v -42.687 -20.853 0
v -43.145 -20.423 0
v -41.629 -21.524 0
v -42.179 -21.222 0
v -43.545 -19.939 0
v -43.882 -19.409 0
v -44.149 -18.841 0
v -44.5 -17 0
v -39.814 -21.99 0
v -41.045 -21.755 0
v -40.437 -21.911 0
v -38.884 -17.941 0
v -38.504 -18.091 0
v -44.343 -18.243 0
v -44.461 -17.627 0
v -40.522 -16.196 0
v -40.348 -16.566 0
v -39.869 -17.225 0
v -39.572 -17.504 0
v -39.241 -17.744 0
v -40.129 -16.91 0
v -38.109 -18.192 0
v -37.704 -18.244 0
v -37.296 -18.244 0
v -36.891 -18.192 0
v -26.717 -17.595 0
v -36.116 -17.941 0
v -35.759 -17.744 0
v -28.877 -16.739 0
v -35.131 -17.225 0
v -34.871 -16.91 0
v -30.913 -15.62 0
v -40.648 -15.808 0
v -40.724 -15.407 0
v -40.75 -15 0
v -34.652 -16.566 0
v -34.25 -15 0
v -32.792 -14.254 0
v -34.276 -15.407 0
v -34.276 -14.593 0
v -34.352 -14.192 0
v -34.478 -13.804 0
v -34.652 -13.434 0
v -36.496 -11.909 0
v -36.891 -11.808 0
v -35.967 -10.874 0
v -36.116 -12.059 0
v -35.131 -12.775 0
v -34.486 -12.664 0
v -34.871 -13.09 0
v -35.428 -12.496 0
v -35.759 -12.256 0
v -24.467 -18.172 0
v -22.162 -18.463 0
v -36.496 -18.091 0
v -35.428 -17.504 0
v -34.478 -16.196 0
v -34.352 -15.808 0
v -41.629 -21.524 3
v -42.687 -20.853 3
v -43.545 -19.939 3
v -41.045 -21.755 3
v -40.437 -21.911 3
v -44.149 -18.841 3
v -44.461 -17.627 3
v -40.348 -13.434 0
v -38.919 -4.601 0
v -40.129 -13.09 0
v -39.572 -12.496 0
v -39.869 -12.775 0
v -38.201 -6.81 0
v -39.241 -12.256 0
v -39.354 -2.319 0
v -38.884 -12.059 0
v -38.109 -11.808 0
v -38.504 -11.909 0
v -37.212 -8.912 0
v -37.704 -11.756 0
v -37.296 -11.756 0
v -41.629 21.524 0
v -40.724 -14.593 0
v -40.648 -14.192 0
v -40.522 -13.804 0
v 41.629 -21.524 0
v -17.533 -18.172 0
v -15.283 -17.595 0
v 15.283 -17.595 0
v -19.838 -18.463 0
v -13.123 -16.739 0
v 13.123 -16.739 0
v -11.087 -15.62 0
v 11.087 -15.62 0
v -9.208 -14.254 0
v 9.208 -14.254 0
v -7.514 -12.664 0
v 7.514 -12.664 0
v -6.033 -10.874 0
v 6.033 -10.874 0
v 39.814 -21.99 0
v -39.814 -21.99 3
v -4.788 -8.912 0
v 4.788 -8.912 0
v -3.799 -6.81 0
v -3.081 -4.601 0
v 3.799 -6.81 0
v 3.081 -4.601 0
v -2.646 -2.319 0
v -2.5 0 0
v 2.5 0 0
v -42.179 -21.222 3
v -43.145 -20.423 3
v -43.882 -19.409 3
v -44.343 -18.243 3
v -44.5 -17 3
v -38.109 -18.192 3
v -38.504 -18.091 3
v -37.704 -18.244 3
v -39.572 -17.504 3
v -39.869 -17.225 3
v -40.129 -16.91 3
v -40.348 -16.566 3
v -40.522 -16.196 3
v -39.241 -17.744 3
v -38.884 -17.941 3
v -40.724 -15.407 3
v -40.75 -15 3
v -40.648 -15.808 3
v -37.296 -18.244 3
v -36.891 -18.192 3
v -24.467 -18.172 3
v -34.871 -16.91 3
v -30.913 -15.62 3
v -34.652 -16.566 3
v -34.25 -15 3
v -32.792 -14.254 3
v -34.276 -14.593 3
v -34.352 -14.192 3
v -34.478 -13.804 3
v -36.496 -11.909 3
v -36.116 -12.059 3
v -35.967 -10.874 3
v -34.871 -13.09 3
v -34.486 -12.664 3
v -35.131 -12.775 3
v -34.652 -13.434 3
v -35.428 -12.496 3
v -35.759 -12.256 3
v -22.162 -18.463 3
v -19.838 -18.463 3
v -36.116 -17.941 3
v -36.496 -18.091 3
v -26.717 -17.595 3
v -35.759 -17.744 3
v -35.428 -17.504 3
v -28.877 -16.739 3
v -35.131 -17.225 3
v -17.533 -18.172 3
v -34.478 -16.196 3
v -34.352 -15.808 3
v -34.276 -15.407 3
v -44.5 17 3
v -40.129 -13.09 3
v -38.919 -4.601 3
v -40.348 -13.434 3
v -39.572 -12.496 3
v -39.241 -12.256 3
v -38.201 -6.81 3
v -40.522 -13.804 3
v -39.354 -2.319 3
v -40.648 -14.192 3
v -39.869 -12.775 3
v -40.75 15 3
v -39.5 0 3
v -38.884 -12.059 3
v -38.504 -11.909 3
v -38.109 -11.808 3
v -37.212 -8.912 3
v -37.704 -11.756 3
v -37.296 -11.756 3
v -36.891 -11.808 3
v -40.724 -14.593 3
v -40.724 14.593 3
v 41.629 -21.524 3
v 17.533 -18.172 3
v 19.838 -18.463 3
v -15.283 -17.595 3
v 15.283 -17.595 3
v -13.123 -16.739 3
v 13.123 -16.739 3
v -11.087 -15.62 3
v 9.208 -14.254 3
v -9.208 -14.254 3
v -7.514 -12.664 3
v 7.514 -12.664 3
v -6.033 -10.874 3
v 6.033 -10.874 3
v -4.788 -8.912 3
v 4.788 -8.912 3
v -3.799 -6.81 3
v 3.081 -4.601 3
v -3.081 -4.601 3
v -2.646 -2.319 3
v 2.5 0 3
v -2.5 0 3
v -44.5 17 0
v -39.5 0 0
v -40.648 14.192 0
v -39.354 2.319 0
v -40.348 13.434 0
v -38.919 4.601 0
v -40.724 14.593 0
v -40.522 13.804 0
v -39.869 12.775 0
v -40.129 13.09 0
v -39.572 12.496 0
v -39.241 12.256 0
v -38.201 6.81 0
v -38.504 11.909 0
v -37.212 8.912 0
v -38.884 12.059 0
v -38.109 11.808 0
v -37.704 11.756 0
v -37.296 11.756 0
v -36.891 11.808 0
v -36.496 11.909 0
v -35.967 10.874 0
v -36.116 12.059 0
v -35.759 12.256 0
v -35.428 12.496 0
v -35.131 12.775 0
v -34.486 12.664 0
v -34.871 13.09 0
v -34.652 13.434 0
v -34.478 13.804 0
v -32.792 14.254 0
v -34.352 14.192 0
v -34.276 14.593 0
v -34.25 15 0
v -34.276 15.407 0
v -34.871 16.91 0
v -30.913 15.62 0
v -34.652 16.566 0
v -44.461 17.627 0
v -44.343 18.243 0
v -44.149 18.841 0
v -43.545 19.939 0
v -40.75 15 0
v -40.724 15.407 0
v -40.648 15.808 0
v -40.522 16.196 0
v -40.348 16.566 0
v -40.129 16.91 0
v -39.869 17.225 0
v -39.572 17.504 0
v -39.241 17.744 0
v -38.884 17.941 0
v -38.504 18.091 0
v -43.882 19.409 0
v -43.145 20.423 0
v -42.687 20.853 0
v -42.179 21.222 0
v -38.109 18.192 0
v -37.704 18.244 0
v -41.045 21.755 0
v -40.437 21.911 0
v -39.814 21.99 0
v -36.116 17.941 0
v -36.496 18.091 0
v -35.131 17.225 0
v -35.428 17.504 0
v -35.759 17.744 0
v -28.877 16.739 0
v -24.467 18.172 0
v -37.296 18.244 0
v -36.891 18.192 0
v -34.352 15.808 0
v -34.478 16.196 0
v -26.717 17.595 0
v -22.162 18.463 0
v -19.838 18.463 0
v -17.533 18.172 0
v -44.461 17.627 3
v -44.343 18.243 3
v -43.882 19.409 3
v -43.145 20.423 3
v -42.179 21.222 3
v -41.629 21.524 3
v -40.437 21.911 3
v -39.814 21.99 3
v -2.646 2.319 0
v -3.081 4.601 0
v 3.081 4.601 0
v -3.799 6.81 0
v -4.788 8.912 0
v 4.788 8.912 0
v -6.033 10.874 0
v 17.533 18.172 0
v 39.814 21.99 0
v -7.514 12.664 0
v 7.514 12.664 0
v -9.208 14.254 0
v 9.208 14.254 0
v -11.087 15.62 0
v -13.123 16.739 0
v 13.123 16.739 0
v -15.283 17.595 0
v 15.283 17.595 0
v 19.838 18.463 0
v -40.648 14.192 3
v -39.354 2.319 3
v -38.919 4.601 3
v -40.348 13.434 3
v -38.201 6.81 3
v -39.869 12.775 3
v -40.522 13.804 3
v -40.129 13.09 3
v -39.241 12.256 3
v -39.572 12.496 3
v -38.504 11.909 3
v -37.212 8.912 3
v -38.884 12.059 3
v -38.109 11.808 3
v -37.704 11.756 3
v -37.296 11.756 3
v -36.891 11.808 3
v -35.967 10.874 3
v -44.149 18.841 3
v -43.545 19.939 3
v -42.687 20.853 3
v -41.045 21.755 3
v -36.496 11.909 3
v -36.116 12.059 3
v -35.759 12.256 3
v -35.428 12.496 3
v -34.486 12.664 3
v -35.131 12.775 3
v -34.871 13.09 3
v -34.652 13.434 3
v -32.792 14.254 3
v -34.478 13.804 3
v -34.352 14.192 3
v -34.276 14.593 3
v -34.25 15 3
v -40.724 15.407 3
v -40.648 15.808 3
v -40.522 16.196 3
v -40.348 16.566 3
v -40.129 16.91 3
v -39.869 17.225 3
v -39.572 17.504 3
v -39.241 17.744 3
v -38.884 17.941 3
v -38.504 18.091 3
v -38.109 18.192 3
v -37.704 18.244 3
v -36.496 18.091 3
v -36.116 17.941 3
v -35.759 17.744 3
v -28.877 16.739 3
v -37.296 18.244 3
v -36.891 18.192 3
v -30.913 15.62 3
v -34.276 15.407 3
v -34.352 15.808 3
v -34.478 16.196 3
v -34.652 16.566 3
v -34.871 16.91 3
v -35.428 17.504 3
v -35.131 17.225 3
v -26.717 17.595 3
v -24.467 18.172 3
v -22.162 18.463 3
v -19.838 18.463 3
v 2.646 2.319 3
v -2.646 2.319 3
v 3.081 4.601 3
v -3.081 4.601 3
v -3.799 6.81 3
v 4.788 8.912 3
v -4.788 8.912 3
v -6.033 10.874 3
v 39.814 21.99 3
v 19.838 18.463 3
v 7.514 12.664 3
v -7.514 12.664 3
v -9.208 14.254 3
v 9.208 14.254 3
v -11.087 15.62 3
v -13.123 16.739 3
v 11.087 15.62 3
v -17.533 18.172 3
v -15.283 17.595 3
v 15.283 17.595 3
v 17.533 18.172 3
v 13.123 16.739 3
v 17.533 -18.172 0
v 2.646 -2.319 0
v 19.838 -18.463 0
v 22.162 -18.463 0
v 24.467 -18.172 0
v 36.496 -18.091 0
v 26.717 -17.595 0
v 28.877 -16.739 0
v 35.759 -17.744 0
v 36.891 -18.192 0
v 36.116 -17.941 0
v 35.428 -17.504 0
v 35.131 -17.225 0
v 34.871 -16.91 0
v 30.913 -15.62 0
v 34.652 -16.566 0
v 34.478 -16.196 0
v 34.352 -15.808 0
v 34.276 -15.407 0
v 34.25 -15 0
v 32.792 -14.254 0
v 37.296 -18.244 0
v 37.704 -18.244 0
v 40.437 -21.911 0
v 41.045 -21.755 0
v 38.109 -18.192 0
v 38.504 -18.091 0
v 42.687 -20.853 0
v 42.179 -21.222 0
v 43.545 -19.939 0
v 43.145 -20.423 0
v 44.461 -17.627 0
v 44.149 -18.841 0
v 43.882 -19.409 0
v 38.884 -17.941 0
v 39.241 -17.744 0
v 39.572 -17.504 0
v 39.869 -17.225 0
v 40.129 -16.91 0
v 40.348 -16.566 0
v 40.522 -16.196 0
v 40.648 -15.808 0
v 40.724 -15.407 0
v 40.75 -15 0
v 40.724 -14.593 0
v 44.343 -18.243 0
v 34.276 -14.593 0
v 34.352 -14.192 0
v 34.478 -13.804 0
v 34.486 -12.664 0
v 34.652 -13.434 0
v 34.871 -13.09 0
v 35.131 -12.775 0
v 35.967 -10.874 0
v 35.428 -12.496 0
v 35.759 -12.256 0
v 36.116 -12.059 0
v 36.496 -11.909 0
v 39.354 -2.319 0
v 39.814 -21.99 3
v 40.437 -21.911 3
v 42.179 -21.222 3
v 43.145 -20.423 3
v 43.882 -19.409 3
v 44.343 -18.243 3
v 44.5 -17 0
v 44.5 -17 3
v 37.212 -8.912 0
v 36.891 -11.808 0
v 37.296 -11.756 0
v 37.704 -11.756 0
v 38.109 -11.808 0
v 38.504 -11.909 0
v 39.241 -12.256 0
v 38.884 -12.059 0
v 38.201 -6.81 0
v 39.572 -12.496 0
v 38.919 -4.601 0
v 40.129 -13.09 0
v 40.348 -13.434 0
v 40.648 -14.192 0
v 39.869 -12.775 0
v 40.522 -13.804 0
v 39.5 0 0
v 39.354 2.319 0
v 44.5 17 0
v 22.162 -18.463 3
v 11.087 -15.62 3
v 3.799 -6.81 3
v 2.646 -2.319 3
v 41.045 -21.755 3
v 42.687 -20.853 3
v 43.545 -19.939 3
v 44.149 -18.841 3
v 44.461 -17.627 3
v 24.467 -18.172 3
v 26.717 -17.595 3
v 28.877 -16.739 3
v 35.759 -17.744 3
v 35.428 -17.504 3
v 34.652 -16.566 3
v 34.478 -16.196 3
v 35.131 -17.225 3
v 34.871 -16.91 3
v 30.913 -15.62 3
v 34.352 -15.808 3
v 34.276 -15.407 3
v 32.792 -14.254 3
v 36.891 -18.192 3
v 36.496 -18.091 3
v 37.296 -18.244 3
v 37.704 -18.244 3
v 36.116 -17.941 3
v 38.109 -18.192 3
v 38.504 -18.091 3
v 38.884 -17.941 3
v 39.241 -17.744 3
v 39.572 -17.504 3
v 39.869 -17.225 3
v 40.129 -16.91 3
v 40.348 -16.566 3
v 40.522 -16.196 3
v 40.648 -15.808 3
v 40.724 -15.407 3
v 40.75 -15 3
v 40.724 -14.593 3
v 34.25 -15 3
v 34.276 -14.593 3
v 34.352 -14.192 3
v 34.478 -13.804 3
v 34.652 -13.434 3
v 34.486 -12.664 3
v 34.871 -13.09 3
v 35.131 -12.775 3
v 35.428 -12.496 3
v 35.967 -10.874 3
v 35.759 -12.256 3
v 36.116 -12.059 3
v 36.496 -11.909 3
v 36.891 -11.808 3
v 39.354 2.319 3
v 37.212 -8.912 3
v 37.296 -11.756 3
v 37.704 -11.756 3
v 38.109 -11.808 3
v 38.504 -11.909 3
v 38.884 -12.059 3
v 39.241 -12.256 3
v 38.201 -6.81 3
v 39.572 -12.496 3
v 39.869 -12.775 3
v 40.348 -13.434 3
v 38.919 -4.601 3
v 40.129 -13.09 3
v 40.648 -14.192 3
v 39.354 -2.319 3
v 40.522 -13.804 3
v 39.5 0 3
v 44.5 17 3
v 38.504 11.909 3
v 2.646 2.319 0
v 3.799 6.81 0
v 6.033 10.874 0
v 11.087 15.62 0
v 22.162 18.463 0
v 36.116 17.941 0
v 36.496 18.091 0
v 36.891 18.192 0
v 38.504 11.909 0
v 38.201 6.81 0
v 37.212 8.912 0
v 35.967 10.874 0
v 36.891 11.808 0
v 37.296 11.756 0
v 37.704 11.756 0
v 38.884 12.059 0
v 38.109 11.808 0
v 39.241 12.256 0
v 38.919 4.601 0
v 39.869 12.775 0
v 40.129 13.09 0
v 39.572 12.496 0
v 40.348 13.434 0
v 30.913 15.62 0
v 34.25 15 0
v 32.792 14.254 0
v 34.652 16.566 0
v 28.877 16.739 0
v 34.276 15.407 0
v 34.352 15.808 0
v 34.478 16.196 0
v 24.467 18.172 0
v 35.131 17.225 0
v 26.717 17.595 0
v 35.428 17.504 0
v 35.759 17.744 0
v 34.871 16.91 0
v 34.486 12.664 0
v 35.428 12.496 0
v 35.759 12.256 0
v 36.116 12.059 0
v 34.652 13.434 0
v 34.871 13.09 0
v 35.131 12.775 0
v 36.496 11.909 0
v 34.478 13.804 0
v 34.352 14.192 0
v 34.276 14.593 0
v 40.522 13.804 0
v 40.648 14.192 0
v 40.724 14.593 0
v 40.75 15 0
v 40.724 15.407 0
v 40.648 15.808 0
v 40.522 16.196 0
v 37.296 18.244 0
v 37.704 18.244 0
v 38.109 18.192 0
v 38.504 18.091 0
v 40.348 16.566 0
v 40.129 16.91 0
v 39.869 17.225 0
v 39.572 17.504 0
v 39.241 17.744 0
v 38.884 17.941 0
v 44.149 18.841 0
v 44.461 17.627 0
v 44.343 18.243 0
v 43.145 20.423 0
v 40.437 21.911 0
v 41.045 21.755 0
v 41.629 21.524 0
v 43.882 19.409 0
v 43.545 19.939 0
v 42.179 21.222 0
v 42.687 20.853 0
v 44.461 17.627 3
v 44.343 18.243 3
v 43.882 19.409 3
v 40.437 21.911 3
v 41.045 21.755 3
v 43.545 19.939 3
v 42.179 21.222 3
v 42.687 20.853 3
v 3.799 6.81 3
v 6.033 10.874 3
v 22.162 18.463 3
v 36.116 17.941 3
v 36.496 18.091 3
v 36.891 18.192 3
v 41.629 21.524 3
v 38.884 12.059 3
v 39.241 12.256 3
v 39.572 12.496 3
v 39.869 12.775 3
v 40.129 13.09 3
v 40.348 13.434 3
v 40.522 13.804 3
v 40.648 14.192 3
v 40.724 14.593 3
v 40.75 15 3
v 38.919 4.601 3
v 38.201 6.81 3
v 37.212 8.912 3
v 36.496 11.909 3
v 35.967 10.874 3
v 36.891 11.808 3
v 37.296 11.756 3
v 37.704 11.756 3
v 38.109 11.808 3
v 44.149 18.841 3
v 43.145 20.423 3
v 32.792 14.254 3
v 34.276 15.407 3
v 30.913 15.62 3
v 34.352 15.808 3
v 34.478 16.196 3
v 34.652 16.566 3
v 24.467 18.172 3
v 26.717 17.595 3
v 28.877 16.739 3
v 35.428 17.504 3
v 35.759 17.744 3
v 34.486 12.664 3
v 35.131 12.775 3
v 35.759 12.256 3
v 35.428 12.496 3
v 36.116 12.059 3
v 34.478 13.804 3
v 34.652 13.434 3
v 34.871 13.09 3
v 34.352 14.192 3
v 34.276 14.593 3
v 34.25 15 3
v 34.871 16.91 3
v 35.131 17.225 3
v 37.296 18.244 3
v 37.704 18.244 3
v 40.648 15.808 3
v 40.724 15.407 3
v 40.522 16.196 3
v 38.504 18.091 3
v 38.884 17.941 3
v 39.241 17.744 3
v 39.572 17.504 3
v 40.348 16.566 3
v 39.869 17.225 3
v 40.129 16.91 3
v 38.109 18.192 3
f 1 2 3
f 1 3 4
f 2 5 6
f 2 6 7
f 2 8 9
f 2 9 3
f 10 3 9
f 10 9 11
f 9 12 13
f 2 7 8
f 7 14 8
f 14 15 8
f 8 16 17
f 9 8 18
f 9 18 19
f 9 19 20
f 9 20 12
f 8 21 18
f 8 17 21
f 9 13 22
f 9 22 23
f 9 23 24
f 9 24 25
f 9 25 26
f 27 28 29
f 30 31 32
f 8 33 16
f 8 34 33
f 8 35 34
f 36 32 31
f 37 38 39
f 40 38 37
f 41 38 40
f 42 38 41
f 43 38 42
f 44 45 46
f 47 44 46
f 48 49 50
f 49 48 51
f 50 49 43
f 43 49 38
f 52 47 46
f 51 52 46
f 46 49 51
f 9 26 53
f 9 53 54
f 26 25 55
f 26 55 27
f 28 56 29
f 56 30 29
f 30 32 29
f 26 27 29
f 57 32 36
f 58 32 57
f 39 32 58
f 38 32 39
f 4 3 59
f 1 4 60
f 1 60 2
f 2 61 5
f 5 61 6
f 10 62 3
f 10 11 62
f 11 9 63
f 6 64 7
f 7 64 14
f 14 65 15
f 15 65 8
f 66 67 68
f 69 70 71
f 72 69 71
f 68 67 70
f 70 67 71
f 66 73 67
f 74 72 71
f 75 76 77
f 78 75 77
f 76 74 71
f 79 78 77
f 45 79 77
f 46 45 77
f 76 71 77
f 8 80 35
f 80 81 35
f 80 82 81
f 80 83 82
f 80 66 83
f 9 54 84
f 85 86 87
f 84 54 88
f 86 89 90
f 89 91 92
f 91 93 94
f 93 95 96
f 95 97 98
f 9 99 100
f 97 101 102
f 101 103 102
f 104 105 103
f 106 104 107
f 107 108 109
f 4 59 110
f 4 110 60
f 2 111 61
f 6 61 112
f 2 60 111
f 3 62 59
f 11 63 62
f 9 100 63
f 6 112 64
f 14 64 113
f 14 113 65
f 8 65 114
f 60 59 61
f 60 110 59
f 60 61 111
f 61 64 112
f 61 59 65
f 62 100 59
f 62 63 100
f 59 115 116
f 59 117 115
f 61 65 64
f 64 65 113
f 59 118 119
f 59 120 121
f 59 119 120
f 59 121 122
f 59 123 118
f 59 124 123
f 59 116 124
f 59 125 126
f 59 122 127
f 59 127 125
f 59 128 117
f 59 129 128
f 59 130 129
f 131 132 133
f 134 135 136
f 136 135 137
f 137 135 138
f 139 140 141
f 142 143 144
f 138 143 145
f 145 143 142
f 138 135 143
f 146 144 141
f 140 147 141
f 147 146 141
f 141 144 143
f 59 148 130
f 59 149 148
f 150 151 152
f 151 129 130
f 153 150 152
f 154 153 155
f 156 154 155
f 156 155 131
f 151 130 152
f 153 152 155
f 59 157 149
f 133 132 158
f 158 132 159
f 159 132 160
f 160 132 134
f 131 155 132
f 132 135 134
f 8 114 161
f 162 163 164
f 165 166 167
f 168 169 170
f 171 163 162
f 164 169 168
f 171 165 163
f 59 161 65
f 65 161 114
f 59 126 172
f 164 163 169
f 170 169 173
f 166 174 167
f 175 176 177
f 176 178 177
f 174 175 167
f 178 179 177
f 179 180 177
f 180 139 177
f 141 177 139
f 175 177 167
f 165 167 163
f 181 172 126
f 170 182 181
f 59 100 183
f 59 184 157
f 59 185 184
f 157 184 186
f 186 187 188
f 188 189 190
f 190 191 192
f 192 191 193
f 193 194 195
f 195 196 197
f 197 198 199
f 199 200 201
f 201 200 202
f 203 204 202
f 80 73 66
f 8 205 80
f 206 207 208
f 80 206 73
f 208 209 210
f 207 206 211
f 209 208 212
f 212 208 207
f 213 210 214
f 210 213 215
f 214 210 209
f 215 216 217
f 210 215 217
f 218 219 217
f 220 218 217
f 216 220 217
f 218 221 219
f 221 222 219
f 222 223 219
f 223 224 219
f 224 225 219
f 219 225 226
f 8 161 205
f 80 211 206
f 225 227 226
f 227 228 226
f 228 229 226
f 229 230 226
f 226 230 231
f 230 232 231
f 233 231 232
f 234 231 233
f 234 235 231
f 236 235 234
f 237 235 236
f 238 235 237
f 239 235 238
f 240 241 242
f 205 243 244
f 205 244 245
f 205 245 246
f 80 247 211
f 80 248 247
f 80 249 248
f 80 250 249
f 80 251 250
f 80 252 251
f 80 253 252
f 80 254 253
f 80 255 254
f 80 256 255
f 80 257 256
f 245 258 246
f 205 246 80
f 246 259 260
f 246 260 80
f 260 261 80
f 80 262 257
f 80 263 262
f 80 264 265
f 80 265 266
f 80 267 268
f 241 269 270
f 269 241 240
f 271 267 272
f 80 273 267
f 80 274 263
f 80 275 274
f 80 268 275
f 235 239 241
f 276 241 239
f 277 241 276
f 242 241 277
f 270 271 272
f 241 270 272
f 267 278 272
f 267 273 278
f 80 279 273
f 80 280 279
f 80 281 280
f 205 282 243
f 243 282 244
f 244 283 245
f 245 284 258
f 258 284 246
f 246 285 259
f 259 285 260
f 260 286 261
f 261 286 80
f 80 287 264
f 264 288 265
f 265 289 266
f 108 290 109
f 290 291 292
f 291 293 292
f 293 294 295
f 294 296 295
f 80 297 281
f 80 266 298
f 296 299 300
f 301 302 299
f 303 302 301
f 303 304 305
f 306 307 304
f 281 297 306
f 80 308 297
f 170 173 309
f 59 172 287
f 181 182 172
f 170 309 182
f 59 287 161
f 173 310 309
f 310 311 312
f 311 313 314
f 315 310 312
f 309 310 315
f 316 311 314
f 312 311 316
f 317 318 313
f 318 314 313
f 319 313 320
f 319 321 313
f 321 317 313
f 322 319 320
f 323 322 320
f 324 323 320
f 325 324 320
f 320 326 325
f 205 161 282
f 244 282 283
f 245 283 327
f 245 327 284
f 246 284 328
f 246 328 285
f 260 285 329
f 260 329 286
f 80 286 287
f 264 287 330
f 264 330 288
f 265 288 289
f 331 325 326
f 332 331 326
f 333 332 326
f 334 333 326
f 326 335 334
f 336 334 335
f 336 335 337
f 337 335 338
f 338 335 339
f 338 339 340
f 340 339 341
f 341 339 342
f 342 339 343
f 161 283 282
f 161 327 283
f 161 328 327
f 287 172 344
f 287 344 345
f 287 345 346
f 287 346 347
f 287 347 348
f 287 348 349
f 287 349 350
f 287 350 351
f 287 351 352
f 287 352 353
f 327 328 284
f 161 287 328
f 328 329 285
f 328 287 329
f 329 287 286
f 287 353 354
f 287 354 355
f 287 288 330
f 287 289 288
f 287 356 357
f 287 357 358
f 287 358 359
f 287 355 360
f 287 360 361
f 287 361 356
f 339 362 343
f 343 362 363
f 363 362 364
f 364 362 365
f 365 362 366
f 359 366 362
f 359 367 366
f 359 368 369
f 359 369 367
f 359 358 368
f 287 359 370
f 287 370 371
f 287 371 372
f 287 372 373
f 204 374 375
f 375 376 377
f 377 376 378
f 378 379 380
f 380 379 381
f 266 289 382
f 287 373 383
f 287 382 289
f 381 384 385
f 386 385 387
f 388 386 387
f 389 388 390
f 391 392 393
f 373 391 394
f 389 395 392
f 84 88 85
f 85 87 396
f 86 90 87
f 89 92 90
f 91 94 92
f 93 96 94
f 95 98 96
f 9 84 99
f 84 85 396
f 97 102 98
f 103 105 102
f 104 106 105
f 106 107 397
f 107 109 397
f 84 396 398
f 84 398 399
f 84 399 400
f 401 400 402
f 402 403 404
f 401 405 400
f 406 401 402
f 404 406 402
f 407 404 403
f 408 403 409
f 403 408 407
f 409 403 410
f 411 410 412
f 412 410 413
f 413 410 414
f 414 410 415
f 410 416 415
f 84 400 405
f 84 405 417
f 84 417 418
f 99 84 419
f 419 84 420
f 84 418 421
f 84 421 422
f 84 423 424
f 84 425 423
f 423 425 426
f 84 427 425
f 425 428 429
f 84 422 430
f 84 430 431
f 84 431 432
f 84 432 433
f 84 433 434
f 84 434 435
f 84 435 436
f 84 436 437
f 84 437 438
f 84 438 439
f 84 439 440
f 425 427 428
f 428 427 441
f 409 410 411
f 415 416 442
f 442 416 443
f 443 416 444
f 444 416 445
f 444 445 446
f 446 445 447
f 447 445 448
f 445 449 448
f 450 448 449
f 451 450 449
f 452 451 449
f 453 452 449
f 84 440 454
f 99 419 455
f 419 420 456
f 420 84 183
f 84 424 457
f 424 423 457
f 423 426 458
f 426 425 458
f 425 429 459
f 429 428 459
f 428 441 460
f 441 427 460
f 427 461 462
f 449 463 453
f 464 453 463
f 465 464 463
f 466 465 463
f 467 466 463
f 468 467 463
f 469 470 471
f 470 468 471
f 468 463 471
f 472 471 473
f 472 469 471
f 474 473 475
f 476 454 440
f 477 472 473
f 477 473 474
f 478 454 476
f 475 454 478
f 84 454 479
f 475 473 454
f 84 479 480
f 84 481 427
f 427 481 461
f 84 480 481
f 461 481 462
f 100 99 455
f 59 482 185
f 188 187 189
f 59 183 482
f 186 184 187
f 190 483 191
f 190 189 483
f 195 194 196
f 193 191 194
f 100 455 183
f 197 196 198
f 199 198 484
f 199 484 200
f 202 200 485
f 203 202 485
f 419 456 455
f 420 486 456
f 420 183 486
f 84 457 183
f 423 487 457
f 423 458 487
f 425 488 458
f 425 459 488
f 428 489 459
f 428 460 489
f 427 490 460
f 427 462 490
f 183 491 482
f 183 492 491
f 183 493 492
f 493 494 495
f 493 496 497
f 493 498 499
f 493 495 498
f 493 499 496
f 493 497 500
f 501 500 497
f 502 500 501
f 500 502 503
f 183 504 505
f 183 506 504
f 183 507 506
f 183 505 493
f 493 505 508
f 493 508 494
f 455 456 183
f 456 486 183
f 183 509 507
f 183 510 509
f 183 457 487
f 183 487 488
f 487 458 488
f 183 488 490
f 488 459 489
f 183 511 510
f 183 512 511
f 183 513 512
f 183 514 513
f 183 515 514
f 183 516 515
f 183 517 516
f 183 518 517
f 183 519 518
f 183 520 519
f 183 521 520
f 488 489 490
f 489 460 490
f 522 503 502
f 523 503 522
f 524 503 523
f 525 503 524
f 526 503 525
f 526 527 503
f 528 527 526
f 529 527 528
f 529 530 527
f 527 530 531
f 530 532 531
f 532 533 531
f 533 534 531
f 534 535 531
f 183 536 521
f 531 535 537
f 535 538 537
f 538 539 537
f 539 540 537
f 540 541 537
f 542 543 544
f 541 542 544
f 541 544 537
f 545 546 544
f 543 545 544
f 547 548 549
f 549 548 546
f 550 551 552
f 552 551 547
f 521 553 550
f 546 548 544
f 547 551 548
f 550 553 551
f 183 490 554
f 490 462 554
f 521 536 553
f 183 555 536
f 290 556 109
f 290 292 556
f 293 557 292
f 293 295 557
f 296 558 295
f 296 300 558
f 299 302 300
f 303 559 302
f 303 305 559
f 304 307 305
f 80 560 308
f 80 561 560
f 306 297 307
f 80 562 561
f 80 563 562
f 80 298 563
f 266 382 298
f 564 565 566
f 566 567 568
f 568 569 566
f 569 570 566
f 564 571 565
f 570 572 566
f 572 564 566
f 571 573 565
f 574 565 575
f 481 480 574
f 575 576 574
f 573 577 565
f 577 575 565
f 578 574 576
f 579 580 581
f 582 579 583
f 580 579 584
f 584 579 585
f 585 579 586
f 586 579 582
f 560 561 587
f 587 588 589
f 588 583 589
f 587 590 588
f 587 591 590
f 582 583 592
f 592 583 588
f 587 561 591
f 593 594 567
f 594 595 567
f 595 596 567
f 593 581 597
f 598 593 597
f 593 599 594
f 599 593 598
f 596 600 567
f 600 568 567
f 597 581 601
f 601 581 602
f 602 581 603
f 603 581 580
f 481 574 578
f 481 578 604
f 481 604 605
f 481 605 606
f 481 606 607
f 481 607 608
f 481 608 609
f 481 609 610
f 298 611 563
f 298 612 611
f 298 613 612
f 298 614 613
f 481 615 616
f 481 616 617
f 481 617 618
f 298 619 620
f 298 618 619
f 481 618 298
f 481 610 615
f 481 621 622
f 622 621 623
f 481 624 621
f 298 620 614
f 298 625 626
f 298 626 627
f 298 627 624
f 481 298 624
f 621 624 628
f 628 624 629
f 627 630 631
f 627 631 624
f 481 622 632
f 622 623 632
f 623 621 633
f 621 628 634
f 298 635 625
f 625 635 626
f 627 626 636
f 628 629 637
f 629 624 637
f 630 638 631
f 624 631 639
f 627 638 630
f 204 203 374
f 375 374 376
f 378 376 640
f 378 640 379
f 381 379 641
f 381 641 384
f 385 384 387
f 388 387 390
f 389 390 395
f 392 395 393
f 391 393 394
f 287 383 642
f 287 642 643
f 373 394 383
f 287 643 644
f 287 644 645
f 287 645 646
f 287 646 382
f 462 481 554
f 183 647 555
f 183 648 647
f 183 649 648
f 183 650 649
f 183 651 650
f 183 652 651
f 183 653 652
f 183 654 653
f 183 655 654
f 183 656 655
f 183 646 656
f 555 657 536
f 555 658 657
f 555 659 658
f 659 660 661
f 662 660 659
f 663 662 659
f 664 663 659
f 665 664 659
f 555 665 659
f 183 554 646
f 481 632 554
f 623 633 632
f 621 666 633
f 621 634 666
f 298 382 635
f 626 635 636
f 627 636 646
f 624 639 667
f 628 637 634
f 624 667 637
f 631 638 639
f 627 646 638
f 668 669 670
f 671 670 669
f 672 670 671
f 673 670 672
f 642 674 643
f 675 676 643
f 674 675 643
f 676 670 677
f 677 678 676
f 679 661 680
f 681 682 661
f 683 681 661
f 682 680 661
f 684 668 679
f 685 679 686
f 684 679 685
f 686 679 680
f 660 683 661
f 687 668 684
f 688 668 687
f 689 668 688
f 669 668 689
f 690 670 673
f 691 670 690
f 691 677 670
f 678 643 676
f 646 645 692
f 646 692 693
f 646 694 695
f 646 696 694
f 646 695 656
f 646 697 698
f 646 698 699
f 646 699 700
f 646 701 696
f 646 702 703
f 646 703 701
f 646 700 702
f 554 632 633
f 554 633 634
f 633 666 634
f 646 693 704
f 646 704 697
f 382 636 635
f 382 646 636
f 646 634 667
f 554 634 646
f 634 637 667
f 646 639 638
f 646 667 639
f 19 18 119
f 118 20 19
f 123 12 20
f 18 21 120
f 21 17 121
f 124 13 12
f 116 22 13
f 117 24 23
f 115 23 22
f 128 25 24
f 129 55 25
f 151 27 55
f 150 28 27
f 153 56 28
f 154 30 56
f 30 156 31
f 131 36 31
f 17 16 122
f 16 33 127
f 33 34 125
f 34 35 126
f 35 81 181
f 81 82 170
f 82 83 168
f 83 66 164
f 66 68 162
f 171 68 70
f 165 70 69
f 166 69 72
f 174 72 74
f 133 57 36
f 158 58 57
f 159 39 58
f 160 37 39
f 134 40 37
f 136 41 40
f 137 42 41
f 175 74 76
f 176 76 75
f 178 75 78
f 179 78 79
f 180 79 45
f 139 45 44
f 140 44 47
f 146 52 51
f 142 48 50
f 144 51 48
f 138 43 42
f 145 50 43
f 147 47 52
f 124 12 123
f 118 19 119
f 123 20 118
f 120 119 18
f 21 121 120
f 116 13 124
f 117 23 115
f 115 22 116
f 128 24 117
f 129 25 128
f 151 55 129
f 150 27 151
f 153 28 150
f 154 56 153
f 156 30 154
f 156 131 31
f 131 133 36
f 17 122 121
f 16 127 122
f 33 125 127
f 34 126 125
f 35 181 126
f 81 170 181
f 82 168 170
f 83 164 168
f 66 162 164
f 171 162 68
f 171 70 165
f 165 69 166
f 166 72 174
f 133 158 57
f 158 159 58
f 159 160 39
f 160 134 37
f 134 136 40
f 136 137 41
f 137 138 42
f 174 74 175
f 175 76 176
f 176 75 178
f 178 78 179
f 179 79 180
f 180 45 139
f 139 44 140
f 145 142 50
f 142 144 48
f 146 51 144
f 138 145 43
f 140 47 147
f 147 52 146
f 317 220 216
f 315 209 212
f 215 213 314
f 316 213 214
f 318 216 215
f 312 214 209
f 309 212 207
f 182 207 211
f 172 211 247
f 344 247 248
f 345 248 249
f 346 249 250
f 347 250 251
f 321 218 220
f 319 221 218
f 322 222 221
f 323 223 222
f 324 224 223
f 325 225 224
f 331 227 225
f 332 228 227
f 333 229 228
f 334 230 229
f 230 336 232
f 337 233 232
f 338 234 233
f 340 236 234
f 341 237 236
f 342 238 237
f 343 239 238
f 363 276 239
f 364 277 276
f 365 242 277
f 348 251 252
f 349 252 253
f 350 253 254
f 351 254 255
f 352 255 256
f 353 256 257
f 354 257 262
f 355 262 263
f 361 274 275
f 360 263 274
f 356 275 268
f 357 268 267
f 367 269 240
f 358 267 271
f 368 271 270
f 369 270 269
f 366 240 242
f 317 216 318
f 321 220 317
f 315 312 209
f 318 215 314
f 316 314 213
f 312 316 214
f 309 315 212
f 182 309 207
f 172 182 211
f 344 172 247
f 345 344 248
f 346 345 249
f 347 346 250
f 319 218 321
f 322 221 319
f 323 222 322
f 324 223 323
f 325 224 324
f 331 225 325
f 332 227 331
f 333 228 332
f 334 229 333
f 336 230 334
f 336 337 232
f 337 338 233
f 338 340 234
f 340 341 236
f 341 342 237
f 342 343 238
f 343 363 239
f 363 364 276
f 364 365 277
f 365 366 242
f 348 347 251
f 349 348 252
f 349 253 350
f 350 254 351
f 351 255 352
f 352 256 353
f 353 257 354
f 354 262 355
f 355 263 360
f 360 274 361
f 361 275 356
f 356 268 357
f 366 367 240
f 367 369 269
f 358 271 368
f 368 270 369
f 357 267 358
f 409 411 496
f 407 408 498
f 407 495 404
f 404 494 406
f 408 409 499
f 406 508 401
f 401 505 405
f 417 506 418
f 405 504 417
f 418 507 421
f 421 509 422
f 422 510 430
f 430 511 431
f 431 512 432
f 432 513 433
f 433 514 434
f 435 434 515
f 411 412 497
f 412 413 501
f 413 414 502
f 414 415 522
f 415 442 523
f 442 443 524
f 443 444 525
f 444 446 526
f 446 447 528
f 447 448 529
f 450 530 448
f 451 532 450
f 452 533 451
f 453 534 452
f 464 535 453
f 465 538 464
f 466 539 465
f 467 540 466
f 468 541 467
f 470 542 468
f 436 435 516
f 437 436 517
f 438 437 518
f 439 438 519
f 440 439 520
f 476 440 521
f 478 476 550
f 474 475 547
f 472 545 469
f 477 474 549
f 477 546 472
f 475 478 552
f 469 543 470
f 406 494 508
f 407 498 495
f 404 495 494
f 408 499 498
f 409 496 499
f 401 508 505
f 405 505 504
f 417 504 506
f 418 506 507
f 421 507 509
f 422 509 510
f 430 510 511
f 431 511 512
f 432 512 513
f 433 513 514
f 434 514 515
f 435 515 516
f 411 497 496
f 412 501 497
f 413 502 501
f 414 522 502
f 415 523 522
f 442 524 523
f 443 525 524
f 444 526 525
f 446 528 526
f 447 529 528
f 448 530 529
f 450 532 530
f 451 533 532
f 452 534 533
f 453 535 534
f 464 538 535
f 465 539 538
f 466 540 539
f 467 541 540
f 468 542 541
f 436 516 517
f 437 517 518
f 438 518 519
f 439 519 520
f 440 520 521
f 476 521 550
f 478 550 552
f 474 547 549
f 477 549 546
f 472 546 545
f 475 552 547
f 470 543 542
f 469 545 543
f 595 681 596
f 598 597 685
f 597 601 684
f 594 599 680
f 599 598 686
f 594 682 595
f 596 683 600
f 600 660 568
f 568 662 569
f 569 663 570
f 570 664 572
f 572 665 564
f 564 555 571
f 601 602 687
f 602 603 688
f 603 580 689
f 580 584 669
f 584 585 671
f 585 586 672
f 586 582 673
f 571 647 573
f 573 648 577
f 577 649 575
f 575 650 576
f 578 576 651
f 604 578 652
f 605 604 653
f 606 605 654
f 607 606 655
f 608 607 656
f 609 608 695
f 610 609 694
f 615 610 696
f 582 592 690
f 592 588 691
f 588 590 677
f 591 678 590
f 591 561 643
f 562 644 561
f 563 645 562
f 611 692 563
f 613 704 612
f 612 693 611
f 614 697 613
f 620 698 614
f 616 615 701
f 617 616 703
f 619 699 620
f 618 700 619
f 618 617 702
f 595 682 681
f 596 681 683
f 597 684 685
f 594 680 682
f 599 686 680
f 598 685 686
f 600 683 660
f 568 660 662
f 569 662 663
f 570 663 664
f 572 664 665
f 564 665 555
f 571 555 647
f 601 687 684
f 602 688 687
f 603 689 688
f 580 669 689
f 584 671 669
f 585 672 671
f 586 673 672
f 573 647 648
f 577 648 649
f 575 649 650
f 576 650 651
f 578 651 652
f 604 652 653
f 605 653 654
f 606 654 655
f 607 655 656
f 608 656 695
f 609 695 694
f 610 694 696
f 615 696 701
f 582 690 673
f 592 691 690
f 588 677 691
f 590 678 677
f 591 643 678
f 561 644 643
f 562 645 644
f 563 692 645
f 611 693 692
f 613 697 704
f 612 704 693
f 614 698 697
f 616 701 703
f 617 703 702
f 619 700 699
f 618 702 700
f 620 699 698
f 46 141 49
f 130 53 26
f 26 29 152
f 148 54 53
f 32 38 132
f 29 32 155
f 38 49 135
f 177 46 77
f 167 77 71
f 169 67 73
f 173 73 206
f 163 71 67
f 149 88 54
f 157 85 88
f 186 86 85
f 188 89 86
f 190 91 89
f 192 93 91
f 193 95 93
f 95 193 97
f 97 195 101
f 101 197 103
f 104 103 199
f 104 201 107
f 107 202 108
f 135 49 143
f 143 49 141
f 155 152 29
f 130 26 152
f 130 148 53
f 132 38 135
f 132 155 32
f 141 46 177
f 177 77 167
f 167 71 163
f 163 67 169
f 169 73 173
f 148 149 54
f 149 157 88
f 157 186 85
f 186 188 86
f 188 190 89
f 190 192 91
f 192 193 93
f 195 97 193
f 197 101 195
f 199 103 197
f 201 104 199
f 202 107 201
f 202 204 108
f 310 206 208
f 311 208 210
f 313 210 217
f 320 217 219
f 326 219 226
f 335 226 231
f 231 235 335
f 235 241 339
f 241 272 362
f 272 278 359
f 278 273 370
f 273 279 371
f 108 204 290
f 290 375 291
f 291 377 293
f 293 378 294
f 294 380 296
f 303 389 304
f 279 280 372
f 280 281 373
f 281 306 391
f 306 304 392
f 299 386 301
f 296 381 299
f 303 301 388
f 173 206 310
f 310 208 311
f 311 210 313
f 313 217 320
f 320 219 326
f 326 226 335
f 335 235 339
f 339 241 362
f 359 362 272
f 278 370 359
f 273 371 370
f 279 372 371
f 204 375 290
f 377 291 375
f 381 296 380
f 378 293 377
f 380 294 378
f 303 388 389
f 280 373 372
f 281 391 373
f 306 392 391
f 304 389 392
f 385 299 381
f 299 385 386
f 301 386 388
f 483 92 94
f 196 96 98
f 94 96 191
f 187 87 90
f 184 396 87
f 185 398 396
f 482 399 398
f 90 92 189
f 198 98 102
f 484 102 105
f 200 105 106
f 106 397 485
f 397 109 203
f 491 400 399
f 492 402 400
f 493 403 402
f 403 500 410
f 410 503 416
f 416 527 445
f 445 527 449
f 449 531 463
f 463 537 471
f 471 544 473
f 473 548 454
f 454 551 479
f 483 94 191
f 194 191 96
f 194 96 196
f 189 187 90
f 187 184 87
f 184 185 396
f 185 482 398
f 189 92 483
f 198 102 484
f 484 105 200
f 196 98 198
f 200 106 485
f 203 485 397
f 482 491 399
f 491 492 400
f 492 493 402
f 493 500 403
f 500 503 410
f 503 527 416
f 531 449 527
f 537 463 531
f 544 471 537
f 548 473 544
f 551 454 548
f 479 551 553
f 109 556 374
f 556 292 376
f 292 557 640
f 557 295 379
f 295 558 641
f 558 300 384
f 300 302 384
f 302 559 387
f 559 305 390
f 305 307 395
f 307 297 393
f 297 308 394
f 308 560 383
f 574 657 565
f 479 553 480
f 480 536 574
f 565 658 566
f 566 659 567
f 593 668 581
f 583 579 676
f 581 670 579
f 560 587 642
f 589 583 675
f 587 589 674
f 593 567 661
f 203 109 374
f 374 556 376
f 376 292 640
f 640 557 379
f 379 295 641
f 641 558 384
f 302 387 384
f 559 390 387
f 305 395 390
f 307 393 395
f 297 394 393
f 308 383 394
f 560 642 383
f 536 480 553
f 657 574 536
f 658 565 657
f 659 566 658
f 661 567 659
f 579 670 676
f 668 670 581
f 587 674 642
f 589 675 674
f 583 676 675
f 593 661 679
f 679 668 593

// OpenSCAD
$fn = 50;

difference() {
	union() {
		hull() {
			translate(v = [-39.5, 17.0, 0]) {
				cylinder(h = 3, r = 5);
			}
			translate(v = [39.5, 17.0, 0]) {
				cylinder(h = 3, r = 5);
			}
			translate(v = [-39.5, -17.0, 0]) {
				cylinder(h = 3, r = 5);
			}
			translate(v = [39.5, -17.0, 0]) {
				cylinder(h = 3, r = 5);
			}
		}
	}
	union() {
		translate(v = [-37.5, -15.0, -100.0]) {
			cylinder(h = 200, r = 3.25);
		}
		translate(v = [-37.5, 15.0, -100.0]) {
			cylinder(h = 200, r = 3.25);
		}
		translate(v = [37.5, -15.0, -100.0]) {
			cylinder(h = 200, r = 3.25);
		}
		translate(v = [37.5, 15.0, -100.0]) {
			cylinder(h = 200, r = 3.25);
		}
		translate(v = [-37.5, -15.0, -100.0]) {
			cylinder(h = 200, r = 1.8);
		}
		translate(v = [-37.5, 15.0, -100.0]) {
			cylinder(h = 200, r = 1.8);
		}
		translate(v = [37.5, -15.0, -100.0]) {
			cylinder(h = 200, r = 1.8);
		}
		translate(v = [37.5, 15.0, -100.0]) {
			cylinder(h = 200, r = 1.8);
		}
		translate(v = [-21.0, 0, 0.0]) {
			cylinder(h = 3, r = 18.5);
		}
		translate(v = [21.0, 0, 0.0]) {
			cylinder(h = 3, r = 18.5);
		}
	}
}
